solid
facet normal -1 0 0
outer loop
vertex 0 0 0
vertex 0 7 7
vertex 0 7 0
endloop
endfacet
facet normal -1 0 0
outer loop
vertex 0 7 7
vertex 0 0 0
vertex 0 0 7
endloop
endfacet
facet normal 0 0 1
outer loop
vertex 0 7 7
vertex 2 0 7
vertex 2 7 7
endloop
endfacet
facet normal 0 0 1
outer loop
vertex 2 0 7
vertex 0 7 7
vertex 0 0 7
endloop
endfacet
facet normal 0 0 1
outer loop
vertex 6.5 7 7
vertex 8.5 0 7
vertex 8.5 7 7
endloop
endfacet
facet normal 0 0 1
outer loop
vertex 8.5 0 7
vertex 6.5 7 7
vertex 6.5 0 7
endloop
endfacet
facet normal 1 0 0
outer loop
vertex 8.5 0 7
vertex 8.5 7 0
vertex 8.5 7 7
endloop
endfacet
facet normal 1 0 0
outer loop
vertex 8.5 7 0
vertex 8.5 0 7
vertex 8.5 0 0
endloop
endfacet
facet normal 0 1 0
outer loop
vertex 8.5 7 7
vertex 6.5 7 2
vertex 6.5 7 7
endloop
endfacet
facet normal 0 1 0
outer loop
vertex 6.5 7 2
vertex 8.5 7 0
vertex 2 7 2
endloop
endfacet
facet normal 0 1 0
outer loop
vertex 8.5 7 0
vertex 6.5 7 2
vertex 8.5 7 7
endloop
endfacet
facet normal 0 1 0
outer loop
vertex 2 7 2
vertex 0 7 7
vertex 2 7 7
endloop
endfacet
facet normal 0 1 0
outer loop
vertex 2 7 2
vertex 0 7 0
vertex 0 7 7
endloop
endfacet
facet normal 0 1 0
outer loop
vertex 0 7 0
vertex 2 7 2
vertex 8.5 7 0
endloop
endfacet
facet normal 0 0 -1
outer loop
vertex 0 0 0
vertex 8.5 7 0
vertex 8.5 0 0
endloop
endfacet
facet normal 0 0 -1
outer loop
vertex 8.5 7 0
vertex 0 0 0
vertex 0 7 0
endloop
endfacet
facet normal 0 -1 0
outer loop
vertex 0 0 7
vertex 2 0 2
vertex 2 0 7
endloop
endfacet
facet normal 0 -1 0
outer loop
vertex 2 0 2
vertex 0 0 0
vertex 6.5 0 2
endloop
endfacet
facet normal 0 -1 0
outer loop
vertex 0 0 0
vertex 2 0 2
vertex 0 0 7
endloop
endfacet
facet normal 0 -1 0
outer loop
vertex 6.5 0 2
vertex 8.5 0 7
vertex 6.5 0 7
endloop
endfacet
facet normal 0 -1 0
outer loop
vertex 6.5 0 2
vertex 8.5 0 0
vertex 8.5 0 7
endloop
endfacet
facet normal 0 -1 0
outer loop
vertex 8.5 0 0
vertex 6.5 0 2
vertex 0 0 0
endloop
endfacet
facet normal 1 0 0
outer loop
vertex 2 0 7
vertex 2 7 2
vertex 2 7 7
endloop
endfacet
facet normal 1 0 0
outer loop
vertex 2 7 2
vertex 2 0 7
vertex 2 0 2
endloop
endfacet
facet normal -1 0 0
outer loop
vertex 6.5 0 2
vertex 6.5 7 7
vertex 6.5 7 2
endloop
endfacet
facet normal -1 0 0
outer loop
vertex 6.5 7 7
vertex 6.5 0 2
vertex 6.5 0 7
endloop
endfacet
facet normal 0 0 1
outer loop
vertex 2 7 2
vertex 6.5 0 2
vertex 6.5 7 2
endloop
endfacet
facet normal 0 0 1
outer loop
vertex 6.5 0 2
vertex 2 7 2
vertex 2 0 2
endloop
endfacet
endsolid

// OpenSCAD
difference() {
    cube([8.5,7,7]);
    translate([2,0,2]) cube([4.5,7,7]);
}
